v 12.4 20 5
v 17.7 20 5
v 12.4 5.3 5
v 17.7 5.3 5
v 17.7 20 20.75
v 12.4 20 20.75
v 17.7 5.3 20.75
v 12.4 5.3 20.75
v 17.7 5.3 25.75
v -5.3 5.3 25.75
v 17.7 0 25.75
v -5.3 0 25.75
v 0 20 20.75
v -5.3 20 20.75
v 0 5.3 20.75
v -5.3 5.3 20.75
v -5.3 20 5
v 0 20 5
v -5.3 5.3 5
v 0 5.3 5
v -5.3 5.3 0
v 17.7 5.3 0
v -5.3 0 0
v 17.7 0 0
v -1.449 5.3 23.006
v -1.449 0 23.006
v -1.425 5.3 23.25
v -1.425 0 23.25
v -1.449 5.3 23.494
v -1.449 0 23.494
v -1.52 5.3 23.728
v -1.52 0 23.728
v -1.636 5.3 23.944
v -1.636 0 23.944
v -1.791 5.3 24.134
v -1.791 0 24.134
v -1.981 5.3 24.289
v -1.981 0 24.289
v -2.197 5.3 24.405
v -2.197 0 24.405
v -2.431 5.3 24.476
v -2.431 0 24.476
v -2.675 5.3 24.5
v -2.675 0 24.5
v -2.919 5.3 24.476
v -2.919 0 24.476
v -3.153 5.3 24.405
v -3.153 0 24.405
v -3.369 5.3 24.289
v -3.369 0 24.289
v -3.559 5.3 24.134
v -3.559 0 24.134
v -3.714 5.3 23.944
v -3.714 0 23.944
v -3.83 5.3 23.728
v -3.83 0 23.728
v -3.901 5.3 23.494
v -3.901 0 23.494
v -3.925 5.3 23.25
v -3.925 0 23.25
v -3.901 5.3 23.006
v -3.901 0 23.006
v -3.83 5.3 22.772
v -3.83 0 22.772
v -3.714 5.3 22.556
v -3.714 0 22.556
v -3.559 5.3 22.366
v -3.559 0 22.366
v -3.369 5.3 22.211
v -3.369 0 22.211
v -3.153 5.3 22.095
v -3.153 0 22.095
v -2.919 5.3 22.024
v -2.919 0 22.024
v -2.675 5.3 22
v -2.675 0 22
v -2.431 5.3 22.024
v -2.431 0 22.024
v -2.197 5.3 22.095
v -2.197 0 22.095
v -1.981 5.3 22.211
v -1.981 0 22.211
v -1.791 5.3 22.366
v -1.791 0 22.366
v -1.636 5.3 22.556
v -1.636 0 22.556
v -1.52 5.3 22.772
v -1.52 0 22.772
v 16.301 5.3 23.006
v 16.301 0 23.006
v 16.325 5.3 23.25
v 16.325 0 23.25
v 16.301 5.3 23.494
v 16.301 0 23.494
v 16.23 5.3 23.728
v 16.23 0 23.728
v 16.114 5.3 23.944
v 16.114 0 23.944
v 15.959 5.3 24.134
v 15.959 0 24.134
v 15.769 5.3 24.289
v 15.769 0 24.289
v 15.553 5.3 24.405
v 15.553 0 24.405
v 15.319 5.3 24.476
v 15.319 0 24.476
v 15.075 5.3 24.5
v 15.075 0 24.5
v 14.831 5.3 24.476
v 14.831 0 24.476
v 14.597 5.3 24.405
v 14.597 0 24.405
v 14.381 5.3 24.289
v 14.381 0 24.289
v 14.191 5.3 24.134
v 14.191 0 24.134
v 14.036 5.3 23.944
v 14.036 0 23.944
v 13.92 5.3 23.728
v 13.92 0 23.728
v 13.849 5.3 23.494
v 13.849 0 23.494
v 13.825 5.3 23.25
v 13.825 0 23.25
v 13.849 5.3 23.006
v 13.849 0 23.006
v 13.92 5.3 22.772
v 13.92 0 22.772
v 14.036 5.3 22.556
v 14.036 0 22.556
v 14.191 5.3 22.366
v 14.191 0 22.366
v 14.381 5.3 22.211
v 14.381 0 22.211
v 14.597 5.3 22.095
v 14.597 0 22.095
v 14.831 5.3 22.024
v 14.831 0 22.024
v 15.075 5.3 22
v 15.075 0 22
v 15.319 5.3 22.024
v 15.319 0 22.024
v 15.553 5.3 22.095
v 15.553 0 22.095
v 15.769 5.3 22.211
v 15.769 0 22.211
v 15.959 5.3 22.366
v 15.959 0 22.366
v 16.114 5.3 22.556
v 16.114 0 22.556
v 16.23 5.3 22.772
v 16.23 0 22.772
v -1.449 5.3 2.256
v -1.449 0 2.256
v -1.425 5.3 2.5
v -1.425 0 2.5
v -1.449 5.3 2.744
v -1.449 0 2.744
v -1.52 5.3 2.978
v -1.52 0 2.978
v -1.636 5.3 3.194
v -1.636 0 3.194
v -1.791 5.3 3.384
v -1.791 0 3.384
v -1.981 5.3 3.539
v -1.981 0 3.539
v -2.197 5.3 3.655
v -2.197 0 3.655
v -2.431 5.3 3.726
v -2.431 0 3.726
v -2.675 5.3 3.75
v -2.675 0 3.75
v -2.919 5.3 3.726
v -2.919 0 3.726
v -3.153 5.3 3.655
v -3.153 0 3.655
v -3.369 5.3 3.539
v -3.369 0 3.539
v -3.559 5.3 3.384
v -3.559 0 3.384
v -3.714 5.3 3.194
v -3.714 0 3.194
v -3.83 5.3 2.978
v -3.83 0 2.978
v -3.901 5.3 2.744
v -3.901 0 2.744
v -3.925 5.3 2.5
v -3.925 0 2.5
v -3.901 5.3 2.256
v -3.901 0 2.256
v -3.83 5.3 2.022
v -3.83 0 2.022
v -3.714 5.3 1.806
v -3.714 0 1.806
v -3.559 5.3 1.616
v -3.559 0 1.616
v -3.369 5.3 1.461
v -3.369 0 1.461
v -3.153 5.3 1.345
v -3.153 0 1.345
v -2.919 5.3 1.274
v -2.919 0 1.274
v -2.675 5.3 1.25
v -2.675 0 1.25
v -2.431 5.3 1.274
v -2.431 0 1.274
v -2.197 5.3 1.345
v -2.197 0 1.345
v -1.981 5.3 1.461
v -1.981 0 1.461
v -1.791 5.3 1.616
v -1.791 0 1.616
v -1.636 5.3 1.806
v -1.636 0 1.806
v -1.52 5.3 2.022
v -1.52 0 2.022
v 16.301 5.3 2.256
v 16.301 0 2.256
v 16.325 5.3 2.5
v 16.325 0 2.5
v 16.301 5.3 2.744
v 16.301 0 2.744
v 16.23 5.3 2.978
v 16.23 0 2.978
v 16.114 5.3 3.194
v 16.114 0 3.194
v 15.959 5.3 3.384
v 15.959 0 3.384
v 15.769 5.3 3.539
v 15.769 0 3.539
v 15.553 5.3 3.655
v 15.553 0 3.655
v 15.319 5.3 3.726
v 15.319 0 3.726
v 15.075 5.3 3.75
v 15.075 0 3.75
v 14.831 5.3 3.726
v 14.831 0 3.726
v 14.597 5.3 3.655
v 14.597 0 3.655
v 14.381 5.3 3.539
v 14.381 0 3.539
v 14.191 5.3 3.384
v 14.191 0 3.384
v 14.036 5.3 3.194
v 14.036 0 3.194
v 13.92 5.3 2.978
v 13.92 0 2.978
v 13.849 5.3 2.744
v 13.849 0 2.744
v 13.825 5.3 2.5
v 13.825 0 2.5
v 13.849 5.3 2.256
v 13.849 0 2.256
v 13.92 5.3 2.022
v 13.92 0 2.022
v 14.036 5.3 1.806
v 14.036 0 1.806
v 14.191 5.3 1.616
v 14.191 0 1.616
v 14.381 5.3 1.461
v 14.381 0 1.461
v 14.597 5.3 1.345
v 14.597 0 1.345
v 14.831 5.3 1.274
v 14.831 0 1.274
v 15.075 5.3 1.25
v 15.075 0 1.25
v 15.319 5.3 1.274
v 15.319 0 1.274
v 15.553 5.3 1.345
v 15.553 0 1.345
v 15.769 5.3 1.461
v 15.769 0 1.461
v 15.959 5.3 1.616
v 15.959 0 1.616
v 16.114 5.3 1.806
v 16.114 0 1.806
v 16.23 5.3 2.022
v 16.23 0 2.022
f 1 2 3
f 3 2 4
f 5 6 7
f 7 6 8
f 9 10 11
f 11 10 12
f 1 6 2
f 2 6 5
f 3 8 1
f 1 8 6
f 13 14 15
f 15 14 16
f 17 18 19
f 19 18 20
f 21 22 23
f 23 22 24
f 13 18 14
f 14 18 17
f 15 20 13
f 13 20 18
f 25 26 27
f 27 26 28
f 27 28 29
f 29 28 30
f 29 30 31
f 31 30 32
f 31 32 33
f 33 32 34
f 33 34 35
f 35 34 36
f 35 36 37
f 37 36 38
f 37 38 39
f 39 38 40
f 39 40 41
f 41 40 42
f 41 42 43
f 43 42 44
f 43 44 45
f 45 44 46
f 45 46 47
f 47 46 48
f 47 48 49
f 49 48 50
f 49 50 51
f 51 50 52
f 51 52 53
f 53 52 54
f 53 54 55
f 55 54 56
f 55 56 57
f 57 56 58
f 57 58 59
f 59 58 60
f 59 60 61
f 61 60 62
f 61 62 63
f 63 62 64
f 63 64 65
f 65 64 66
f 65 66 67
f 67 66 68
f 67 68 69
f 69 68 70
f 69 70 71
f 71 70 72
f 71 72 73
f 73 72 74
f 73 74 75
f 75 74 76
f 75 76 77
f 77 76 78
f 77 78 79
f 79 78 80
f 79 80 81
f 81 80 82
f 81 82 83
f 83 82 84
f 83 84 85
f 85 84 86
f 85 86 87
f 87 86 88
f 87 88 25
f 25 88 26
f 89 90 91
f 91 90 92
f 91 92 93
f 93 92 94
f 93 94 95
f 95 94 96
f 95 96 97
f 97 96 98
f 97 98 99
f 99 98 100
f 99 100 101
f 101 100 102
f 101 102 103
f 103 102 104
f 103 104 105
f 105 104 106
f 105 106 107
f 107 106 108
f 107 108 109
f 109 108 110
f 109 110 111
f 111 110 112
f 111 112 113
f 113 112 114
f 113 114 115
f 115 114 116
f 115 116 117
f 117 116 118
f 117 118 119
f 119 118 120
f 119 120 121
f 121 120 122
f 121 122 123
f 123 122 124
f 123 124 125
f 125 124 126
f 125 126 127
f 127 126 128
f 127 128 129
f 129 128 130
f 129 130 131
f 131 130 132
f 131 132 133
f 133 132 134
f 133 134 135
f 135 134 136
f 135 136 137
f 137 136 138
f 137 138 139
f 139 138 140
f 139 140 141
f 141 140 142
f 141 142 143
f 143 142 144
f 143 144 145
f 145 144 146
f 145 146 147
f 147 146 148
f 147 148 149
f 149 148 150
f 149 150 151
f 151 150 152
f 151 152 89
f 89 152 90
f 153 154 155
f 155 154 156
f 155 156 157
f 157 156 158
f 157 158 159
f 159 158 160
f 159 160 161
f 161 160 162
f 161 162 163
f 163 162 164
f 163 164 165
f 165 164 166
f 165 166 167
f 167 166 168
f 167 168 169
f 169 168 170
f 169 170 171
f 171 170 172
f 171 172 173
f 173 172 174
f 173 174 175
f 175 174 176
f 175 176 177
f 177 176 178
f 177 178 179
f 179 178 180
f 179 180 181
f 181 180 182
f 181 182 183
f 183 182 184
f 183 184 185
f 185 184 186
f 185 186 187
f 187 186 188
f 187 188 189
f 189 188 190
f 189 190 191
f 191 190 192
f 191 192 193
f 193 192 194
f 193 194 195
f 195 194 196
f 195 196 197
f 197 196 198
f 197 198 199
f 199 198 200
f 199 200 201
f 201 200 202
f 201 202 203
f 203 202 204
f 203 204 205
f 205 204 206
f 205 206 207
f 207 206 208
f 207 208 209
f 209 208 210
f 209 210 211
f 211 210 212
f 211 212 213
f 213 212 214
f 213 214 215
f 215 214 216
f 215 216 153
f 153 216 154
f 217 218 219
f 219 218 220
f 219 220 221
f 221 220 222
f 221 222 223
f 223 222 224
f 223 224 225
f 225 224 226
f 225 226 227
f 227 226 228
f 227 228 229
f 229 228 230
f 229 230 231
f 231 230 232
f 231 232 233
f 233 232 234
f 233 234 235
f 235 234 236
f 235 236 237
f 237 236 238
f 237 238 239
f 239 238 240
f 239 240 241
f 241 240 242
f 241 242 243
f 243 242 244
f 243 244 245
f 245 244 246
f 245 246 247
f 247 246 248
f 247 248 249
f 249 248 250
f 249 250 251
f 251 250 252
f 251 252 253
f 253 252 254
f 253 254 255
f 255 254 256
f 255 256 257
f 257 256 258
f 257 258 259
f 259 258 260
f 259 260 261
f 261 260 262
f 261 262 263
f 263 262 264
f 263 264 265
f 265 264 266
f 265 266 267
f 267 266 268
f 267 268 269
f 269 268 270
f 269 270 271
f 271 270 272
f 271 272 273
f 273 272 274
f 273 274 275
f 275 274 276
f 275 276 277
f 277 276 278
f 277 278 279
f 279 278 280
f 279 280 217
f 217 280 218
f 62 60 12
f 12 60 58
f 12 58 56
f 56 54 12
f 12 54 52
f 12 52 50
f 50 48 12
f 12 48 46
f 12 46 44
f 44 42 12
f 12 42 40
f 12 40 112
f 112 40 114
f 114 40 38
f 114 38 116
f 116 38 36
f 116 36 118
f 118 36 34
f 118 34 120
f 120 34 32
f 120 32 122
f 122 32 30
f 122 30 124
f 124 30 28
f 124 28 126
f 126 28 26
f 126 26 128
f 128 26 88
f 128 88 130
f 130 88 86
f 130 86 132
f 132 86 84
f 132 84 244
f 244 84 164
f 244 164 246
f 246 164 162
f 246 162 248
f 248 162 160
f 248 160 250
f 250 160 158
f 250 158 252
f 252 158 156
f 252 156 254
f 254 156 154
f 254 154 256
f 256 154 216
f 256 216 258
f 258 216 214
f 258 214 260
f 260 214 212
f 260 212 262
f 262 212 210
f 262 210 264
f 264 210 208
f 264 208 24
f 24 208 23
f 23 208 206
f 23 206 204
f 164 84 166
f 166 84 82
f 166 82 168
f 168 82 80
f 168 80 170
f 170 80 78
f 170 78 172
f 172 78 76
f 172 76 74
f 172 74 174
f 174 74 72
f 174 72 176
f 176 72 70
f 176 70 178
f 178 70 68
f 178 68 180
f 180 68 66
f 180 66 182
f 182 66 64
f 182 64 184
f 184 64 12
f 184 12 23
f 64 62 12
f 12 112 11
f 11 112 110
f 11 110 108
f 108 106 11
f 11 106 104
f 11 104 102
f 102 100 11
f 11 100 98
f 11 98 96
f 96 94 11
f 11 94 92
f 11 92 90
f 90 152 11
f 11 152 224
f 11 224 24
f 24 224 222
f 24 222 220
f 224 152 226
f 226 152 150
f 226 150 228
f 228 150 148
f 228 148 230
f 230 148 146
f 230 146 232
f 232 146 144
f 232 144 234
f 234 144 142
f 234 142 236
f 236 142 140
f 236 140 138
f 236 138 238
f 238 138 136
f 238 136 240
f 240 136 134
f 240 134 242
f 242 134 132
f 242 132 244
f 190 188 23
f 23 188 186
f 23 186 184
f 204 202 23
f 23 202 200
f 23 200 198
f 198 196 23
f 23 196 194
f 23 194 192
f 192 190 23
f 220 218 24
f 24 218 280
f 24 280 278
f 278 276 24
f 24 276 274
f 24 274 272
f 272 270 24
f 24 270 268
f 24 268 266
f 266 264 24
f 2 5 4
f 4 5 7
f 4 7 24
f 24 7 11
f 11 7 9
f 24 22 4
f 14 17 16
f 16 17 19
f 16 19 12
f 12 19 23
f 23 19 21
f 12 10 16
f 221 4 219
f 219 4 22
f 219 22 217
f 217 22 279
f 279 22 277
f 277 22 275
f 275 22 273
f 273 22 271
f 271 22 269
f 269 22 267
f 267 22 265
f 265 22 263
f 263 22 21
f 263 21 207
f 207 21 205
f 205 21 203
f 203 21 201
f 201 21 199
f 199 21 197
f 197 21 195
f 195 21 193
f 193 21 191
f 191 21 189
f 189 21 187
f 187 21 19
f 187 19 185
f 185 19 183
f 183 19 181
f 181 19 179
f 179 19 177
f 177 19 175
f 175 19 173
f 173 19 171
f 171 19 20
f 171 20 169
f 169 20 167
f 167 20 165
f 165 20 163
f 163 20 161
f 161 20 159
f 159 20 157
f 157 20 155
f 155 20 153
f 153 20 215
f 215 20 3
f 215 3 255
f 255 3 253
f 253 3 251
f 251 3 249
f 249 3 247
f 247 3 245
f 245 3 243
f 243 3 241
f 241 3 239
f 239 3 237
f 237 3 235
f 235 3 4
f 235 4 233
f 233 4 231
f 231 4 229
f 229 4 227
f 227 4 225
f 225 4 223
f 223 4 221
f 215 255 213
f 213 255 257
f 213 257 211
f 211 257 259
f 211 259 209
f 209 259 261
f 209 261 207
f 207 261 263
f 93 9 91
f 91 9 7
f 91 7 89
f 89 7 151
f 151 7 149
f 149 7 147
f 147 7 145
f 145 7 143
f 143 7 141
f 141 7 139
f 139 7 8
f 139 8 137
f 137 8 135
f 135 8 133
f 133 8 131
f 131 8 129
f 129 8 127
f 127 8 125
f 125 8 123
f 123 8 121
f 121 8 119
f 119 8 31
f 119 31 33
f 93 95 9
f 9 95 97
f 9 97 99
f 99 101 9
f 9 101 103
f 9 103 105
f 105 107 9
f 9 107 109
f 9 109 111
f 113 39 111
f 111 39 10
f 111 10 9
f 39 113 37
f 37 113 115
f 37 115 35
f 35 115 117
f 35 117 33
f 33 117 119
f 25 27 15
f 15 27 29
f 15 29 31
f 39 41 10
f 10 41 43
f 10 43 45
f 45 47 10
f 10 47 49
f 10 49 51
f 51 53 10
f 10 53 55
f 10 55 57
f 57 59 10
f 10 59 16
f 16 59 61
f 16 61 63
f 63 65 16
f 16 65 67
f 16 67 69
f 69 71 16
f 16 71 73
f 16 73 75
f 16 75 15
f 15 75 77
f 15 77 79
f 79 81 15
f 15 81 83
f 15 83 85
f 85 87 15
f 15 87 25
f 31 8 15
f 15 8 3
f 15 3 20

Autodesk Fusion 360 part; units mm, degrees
sketch "Sketch1" plane through (0, 0, 0) normal (0, 1, 0) x (1, 0, 0)
  line L0 (0, 0) -> (12.4, 0)
  line L1 (12.4, 0) -> (12.4, -25.75)
  line L2 (12.4, -25.75) -> (0, -25.75)
  line L3 (0, -25.75) -> (0, 0)
  line L4 (0, 0) -> (-5.3, 0)
  line L5 (-5.3, 0) -> (-5.3, -25.75)
  line L6 (-5.3, -25.75) -> (0, -25.75)
  line L7 (0, -25.75) -> (0, 0)
  line L8 (12.4, 0) -> (17.7, 0)
  line L9 (17.7, 0) -> (17.7, -25.75)
  line L10 (17.7, -25.75) -> (12.4, -25.75)
  line L11 (12.4, -25.75) -> (12.4, 0)
  line L12 (-5.3, -25.75) -> (-2.675, -25.75)
  line L13 (-2.675, -25.75) -> (-2.675, -23.25)
  line L14 (-2.675, -23.25) -> (-5.3, -23.25)
  line L15 (-5.3, -23.25) -> (-5.3, -25.75)
  line L16 (-2.675, -23.25) -> (15.075, -23.25)
  line L17 (-2.675, -23.25) -> (-2.675, -2.5)
  circle A0 centre (-2.675, -23.25) radius 1.25
  circle A1 centre (-2.675, -2.5) radius 1.25
  circle A2 centre (15.075, -23.25) radius 1.25
  line L18 (-2.675, -2.5) -> (15.075, -2.5)
  circle A3 centre (15.075, -2.5) radius 1.25
  dimension "d1" = 12.4
  dimension "d2" = 25.75
  dimension "d3" = 5.3
  dimension "d4" = 5.3
  dimension "d5" = 25.75
  dimension "d6" = 25.75
  dimension "d13" = 2.625
  dimension "d14" = 2.5
  dimension "d15" = 17.75
  dimension "d16" = 20.75
  dimension "d17" = 2.5
  dimension "d18" = 2.5
  dimension "d19" = 2.5
  dimension "d20" = 17.75
  dimension "d21" = 2.5
extrude "Extrude1" add sketch "Sketch1" along normal blind 5.3 contours L0 L1 L3 L7 L11 L18 | L3 L4 L5 L7 L14 L17 A0 A1 L18 | A3 | A2 | L1 L8 L9 L10 L11 | L1 L3 L7 L11 L16 L18 | L3 L7 L16 L17 A0 A1 L18 | L1 L2 L3 L7 L11 L16 | L3 L6 L7 L13 L16 A0 | L17 A1 L18 | L17 A1 L18 | L5 L6 L12 L13 L14 L15 A0 | L13 L16 A0 | L16 L17 A0 | L14 L17 A0 | L13 L14 A0
extrude "Extrude2" add sketch "Sketch1" along normal blind 20 contours L3 L4 L5 L7 L14 L17 A0 A1 L18 | A3 | A2 | L1 L8 L9 L10 L11 | L3 L7 L16 L17 A0 A1 L18 | L3 L6 L7 L13 L16 A0 | L17 A1 L18 | L17 A1 L18 | L5 L6 L12 L13 L14 L15 A0 | L13 L16 A0 | L16 L17 A0 | L14 L17 A0 | L13 L14 A0
extrude "Extrude3" cut sketch "Sketch1" along normal up to surface (20 mm away) contours A3 | A2 | L17 A1 L18 | L17 A1 L18 | L13 L16 A0 | L16 L17 A0 | L14 L17 A0 | L13 L14 A0
sketch "Sketch3" plane through (0, 20, 0) normal (0, 1, 0) x (-1, 0, 0)
  circle A0 centre (2.675, 23.25) radius 1.25
  circle A1 centre (2.675, 2.5) radius 1.25
  line L0 (0, 25.75) -> (0, 0)
  line L1 (0, 0) -> (5.3, 0)
  line L2 (5.3, 0) -> (5.3, 25.75)
  line L3 (5.3, 25.75) -> (0, 25.75)
  line L4 (2.675, 2.5) -> (2.675, 5)
  line L5 (2.675, 5) -> (0, 5)
  line L6 (2.675, 5) -> (5.3, 5)
  line L7 (2.675, 23.25) -> (2.675, 20.75)
  line L8 (2.675, 20.75) -> (-2, 20.75)
  line L9 (-2, 20.75) -> (2.675, 20.75)
  line L10 (7.8916, 20.75) -> (2.675, 20.75)
  dimension "d24" = 2.5
  dimension "d25" = 2.5
extrude "Extrude4" cut sketch "Sketch3" against normal blind 14.7 contours L0 L2 L3 L8 L9 L10 | L0 L1 L2 L5 L6
sketch "Sketch4" plane through (0, 20, 0) normal (0, 1, 0) x (-1, 0, 0)
  circle A0 centre (-15.075, 23.25) radius 1.25
  circle A1 centre (-15.075, 2.5) radius 1.25
  line L0 (-12.4, 25.75) -> (-17.7, 25.75)
  line L1 (-17.7, 25.75) -> (-17.7, 0)
  line L2 (-17.7, 0) -> (-12.4, 0)
  line L3 (-12.4, 0) -> (-12.4, 25.75)
  line L4 (-15.075, 2.5) -> (-15.075, 5)
  line L5 (-9.6971, 5) -> (-24, 5)
  line L6 (-15.075, 23.25) -> (-15.075, 20.75)
  line L7 (-20.719, 20.75) -> (-5, 20.75)
  dimension "d28" = 2.5
  dimension "d29" = 2.5
extrude "Extrude5" cut sketch "Sketch4" against normal blind 14.7 contours L0 L1 L3 L7 | L1 L2 L3 L5
